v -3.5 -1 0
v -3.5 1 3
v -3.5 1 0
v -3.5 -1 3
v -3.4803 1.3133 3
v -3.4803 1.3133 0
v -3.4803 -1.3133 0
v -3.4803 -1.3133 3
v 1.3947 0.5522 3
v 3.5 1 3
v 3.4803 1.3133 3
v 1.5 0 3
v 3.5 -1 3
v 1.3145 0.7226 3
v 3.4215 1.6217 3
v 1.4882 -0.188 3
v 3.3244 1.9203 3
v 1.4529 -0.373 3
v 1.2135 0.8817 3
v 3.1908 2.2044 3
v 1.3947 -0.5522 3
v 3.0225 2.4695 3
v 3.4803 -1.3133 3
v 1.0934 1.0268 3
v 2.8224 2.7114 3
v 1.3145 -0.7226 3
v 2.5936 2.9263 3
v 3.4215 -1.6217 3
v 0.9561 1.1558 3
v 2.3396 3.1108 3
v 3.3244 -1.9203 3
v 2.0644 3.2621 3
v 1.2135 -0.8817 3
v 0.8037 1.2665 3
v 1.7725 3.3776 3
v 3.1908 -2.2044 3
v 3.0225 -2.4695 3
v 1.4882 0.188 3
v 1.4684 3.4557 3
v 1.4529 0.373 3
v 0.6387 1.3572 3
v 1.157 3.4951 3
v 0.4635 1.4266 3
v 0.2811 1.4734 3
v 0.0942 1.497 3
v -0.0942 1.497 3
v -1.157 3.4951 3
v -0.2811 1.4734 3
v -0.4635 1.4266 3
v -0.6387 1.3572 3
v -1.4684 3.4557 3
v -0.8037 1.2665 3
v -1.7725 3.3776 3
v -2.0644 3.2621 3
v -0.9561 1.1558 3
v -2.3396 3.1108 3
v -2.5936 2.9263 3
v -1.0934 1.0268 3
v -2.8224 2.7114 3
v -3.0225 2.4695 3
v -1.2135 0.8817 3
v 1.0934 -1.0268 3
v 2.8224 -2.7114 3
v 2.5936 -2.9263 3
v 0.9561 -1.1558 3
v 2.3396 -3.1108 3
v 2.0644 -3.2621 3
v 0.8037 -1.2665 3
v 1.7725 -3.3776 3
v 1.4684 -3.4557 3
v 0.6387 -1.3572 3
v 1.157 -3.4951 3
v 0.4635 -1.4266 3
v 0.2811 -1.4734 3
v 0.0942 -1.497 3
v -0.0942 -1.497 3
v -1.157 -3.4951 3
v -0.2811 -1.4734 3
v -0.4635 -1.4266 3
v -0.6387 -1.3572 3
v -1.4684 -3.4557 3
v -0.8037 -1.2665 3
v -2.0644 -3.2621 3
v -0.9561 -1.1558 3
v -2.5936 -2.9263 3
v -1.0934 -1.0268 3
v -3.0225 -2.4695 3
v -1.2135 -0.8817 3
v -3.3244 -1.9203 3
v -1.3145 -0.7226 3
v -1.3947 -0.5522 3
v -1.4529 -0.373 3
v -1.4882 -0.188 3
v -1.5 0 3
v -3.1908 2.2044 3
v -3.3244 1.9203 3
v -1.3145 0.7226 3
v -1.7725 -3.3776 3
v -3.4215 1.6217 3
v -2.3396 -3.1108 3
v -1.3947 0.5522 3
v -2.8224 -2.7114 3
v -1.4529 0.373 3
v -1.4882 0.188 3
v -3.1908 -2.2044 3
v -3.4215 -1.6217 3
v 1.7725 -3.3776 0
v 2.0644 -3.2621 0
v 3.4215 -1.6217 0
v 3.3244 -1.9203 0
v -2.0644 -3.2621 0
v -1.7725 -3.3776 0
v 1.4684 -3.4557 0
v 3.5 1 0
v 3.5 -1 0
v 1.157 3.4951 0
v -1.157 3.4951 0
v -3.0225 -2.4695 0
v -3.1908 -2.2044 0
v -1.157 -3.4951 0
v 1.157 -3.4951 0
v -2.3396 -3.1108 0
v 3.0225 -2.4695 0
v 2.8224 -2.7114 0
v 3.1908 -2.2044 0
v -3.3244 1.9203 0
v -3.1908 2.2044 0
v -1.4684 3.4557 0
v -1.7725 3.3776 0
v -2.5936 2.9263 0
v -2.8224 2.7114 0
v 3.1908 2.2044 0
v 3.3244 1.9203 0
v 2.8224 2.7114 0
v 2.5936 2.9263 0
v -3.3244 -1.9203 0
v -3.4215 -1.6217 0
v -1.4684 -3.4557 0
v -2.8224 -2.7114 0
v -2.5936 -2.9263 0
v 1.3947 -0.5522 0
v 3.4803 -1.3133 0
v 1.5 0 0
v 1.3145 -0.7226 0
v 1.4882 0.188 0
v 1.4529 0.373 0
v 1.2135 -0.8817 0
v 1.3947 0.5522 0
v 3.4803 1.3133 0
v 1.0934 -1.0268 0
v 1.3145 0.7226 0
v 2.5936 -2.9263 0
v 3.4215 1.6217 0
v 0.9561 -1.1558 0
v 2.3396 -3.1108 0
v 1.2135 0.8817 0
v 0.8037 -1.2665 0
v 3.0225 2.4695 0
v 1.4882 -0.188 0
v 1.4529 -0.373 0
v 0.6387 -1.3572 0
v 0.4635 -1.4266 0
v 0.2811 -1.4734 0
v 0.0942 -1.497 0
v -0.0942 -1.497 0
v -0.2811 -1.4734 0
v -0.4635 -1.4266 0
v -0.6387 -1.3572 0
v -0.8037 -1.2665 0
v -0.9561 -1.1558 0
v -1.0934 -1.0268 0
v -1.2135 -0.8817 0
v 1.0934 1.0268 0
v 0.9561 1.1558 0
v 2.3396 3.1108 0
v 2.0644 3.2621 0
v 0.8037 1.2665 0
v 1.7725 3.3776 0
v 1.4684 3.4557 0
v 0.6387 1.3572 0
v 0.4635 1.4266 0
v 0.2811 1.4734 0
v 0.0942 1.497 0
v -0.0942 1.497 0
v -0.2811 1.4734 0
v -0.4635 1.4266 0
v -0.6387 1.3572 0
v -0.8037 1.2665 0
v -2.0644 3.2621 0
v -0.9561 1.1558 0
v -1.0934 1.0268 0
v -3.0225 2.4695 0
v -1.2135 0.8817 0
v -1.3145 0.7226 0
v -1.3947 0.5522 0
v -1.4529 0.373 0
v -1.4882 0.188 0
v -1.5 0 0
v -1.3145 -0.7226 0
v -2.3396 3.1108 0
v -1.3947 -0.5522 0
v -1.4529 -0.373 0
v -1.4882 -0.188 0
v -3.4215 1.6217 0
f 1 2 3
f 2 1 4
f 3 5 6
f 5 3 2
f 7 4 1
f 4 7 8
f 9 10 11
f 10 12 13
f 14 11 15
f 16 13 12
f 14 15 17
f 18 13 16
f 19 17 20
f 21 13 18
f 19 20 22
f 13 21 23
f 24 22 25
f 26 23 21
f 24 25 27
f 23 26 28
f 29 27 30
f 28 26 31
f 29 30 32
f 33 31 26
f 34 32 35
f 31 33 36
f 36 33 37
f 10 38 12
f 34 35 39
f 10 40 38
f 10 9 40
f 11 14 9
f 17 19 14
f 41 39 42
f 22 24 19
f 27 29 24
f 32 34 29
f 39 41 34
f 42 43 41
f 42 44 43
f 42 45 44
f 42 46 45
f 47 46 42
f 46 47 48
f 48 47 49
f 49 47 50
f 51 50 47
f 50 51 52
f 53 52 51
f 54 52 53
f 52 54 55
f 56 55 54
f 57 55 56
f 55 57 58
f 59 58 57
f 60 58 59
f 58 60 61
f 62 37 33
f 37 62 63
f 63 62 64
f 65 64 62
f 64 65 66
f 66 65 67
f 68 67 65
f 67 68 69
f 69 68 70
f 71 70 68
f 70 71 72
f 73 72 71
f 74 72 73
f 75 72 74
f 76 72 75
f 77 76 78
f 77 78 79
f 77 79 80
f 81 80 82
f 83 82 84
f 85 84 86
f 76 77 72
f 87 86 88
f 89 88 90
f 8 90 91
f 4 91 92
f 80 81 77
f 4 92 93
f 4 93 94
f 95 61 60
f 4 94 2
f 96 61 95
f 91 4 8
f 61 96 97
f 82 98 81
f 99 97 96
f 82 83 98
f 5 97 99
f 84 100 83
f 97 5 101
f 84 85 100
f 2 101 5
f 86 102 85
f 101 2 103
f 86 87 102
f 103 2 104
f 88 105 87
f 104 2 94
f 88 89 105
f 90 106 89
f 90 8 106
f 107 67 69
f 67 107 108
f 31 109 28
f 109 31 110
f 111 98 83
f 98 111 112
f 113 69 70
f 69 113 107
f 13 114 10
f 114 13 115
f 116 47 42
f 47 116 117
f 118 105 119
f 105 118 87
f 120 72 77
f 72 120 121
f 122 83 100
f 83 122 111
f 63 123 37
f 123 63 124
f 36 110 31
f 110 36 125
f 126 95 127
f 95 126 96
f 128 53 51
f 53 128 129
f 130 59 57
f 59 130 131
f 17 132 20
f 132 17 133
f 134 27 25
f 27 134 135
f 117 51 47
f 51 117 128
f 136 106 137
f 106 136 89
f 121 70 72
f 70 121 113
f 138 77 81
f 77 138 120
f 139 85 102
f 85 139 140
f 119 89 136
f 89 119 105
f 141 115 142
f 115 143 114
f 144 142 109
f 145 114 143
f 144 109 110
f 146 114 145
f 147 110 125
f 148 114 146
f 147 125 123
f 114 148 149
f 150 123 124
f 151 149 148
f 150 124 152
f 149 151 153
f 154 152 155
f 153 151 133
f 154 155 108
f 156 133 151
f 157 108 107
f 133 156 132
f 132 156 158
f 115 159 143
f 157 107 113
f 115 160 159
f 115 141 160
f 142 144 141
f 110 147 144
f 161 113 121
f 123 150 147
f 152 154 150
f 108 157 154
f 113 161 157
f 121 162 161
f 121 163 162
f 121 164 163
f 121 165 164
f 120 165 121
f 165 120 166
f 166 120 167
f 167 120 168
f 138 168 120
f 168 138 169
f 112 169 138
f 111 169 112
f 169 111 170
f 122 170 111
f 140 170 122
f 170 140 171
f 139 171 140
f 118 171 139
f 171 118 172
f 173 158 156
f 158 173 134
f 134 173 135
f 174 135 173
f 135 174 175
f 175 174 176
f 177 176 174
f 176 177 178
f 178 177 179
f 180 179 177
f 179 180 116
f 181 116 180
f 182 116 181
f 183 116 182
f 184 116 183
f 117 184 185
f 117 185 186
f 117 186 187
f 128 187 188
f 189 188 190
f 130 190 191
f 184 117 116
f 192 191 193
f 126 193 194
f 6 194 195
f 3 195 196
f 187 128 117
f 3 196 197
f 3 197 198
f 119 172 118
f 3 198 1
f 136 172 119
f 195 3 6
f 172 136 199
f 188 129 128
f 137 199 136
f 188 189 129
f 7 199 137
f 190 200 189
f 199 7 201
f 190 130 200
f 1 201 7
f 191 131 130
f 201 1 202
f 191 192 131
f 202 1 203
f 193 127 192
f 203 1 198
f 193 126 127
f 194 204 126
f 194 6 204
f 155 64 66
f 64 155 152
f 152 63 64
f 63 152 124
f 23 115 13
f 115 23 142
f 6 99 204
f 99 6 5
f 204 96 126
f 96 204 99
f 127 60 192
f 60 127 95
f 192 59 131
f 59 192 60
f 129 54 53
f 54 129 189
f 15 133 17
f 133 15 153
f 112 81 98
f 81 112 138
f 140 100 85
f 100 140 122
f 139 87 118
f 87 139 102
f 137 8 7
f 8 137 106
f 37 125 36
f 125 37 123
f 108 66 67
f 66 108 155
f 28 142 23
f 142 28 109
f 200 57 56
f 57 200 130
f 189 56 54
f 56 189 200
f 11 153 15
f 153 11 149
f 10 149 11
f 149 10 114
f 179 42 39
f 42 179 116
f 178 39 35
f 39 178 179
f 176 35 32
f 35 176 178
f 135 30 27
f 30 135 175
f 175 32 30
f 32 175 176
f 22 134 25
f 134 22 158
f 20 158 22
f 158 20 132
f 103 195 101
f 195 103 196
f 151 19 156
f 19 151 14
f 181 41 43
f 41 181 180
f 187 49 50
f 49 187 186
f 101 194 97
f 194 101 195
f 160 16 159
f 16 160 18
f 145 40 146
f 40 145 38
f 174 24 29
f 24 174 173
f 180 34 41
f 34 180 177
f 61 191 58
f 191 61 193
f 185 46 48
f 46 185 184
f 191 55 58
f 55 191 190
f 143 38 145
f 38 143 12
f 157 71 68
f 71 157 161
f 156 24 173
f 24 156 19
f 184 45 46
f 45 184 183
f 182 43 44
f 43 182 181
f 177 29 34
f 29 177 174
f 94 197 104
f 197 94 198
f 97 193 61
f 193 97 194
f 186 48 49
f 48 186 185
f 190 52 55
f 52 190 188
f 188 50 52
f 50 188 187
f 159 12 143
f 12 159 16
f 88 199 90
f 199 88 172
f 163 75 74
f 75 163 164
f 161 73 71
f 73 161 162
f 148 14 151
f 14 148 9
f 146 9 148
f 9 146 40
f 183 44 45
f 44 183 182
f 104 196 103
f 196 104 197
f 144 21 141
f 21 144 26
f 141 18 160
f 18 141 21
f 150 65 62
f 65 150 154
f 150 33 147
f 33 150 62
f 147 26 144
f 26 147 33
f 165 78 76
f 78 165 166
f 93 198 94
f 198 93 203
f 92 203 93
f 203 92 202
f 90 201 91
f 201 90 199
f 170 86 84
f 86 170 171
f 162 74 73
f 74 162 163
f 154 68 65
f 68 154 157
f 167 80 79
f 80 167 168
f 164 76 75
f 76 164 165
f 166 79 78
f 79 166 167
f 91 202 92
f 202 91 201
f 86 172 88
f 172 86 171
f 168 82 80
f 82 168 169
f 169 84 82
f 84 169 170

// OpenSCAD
$fn = 50;


difference() {
	union() {
		translate(v = [0, 0, 0]) {
			rotate(a = [0, 0, 0]) {
				hull() {
					translate(v = [-1.0000000000, 1.0000000000, 0]) {
						rotate(a = [0, 0, 0]) {
							translate(v = [0, 0, 0]) {
								rotate(a = [0, 0, 0]) {
									cylinder(h = 3.0000000000, r = 2.5000000000);
								}
							}
						}
					}
					translate(v = [1.0000000000, 1.0000000000, 0]) {
						rotate(a = [0, 0, 0]) {
							translate(v = [0, 0, 0]) {
								rotate(a = [0, 0, 0]) {
									cylinder(h = 3.0000000000, r = 2.5000000000);
								}
							}
						}
					}
					translate(v = [-1.0000000000, -1.0000000000, 0]) {
						rotate(a = [0, 0, 0]) {
							translate(v = [0, 0, 0]) {
								rotate(a = [0, 0, 0]) {
									cylinder(h = 3.0000000000, r = 2.5000000000);
								}
							}
						}
					}
					translate(v = [1.0000000000, -1.0000000000, 0]) {
						rotate(a = [0, 0, 0]) {
							translate(v = [0, 0, 0]) {
								rotate(a = [0, 0, 0]) {
									cylinder(h = 3.0000000000, r = 2.5000000000);
								}
							}
						}
					}
				}
			}
		}
	}
	union() {
		translate(v = [0.0000000000, 0.0000000000, 0]) {
			rotate(a = [0, 0, 0]) {
				translate(v = [0, 0, -50]) {
					rotate(a = [0, 0, 0]) {
						cylinder(h = 100, r = 1.5000000000);
					}
				}
			}
		}
	}
}
